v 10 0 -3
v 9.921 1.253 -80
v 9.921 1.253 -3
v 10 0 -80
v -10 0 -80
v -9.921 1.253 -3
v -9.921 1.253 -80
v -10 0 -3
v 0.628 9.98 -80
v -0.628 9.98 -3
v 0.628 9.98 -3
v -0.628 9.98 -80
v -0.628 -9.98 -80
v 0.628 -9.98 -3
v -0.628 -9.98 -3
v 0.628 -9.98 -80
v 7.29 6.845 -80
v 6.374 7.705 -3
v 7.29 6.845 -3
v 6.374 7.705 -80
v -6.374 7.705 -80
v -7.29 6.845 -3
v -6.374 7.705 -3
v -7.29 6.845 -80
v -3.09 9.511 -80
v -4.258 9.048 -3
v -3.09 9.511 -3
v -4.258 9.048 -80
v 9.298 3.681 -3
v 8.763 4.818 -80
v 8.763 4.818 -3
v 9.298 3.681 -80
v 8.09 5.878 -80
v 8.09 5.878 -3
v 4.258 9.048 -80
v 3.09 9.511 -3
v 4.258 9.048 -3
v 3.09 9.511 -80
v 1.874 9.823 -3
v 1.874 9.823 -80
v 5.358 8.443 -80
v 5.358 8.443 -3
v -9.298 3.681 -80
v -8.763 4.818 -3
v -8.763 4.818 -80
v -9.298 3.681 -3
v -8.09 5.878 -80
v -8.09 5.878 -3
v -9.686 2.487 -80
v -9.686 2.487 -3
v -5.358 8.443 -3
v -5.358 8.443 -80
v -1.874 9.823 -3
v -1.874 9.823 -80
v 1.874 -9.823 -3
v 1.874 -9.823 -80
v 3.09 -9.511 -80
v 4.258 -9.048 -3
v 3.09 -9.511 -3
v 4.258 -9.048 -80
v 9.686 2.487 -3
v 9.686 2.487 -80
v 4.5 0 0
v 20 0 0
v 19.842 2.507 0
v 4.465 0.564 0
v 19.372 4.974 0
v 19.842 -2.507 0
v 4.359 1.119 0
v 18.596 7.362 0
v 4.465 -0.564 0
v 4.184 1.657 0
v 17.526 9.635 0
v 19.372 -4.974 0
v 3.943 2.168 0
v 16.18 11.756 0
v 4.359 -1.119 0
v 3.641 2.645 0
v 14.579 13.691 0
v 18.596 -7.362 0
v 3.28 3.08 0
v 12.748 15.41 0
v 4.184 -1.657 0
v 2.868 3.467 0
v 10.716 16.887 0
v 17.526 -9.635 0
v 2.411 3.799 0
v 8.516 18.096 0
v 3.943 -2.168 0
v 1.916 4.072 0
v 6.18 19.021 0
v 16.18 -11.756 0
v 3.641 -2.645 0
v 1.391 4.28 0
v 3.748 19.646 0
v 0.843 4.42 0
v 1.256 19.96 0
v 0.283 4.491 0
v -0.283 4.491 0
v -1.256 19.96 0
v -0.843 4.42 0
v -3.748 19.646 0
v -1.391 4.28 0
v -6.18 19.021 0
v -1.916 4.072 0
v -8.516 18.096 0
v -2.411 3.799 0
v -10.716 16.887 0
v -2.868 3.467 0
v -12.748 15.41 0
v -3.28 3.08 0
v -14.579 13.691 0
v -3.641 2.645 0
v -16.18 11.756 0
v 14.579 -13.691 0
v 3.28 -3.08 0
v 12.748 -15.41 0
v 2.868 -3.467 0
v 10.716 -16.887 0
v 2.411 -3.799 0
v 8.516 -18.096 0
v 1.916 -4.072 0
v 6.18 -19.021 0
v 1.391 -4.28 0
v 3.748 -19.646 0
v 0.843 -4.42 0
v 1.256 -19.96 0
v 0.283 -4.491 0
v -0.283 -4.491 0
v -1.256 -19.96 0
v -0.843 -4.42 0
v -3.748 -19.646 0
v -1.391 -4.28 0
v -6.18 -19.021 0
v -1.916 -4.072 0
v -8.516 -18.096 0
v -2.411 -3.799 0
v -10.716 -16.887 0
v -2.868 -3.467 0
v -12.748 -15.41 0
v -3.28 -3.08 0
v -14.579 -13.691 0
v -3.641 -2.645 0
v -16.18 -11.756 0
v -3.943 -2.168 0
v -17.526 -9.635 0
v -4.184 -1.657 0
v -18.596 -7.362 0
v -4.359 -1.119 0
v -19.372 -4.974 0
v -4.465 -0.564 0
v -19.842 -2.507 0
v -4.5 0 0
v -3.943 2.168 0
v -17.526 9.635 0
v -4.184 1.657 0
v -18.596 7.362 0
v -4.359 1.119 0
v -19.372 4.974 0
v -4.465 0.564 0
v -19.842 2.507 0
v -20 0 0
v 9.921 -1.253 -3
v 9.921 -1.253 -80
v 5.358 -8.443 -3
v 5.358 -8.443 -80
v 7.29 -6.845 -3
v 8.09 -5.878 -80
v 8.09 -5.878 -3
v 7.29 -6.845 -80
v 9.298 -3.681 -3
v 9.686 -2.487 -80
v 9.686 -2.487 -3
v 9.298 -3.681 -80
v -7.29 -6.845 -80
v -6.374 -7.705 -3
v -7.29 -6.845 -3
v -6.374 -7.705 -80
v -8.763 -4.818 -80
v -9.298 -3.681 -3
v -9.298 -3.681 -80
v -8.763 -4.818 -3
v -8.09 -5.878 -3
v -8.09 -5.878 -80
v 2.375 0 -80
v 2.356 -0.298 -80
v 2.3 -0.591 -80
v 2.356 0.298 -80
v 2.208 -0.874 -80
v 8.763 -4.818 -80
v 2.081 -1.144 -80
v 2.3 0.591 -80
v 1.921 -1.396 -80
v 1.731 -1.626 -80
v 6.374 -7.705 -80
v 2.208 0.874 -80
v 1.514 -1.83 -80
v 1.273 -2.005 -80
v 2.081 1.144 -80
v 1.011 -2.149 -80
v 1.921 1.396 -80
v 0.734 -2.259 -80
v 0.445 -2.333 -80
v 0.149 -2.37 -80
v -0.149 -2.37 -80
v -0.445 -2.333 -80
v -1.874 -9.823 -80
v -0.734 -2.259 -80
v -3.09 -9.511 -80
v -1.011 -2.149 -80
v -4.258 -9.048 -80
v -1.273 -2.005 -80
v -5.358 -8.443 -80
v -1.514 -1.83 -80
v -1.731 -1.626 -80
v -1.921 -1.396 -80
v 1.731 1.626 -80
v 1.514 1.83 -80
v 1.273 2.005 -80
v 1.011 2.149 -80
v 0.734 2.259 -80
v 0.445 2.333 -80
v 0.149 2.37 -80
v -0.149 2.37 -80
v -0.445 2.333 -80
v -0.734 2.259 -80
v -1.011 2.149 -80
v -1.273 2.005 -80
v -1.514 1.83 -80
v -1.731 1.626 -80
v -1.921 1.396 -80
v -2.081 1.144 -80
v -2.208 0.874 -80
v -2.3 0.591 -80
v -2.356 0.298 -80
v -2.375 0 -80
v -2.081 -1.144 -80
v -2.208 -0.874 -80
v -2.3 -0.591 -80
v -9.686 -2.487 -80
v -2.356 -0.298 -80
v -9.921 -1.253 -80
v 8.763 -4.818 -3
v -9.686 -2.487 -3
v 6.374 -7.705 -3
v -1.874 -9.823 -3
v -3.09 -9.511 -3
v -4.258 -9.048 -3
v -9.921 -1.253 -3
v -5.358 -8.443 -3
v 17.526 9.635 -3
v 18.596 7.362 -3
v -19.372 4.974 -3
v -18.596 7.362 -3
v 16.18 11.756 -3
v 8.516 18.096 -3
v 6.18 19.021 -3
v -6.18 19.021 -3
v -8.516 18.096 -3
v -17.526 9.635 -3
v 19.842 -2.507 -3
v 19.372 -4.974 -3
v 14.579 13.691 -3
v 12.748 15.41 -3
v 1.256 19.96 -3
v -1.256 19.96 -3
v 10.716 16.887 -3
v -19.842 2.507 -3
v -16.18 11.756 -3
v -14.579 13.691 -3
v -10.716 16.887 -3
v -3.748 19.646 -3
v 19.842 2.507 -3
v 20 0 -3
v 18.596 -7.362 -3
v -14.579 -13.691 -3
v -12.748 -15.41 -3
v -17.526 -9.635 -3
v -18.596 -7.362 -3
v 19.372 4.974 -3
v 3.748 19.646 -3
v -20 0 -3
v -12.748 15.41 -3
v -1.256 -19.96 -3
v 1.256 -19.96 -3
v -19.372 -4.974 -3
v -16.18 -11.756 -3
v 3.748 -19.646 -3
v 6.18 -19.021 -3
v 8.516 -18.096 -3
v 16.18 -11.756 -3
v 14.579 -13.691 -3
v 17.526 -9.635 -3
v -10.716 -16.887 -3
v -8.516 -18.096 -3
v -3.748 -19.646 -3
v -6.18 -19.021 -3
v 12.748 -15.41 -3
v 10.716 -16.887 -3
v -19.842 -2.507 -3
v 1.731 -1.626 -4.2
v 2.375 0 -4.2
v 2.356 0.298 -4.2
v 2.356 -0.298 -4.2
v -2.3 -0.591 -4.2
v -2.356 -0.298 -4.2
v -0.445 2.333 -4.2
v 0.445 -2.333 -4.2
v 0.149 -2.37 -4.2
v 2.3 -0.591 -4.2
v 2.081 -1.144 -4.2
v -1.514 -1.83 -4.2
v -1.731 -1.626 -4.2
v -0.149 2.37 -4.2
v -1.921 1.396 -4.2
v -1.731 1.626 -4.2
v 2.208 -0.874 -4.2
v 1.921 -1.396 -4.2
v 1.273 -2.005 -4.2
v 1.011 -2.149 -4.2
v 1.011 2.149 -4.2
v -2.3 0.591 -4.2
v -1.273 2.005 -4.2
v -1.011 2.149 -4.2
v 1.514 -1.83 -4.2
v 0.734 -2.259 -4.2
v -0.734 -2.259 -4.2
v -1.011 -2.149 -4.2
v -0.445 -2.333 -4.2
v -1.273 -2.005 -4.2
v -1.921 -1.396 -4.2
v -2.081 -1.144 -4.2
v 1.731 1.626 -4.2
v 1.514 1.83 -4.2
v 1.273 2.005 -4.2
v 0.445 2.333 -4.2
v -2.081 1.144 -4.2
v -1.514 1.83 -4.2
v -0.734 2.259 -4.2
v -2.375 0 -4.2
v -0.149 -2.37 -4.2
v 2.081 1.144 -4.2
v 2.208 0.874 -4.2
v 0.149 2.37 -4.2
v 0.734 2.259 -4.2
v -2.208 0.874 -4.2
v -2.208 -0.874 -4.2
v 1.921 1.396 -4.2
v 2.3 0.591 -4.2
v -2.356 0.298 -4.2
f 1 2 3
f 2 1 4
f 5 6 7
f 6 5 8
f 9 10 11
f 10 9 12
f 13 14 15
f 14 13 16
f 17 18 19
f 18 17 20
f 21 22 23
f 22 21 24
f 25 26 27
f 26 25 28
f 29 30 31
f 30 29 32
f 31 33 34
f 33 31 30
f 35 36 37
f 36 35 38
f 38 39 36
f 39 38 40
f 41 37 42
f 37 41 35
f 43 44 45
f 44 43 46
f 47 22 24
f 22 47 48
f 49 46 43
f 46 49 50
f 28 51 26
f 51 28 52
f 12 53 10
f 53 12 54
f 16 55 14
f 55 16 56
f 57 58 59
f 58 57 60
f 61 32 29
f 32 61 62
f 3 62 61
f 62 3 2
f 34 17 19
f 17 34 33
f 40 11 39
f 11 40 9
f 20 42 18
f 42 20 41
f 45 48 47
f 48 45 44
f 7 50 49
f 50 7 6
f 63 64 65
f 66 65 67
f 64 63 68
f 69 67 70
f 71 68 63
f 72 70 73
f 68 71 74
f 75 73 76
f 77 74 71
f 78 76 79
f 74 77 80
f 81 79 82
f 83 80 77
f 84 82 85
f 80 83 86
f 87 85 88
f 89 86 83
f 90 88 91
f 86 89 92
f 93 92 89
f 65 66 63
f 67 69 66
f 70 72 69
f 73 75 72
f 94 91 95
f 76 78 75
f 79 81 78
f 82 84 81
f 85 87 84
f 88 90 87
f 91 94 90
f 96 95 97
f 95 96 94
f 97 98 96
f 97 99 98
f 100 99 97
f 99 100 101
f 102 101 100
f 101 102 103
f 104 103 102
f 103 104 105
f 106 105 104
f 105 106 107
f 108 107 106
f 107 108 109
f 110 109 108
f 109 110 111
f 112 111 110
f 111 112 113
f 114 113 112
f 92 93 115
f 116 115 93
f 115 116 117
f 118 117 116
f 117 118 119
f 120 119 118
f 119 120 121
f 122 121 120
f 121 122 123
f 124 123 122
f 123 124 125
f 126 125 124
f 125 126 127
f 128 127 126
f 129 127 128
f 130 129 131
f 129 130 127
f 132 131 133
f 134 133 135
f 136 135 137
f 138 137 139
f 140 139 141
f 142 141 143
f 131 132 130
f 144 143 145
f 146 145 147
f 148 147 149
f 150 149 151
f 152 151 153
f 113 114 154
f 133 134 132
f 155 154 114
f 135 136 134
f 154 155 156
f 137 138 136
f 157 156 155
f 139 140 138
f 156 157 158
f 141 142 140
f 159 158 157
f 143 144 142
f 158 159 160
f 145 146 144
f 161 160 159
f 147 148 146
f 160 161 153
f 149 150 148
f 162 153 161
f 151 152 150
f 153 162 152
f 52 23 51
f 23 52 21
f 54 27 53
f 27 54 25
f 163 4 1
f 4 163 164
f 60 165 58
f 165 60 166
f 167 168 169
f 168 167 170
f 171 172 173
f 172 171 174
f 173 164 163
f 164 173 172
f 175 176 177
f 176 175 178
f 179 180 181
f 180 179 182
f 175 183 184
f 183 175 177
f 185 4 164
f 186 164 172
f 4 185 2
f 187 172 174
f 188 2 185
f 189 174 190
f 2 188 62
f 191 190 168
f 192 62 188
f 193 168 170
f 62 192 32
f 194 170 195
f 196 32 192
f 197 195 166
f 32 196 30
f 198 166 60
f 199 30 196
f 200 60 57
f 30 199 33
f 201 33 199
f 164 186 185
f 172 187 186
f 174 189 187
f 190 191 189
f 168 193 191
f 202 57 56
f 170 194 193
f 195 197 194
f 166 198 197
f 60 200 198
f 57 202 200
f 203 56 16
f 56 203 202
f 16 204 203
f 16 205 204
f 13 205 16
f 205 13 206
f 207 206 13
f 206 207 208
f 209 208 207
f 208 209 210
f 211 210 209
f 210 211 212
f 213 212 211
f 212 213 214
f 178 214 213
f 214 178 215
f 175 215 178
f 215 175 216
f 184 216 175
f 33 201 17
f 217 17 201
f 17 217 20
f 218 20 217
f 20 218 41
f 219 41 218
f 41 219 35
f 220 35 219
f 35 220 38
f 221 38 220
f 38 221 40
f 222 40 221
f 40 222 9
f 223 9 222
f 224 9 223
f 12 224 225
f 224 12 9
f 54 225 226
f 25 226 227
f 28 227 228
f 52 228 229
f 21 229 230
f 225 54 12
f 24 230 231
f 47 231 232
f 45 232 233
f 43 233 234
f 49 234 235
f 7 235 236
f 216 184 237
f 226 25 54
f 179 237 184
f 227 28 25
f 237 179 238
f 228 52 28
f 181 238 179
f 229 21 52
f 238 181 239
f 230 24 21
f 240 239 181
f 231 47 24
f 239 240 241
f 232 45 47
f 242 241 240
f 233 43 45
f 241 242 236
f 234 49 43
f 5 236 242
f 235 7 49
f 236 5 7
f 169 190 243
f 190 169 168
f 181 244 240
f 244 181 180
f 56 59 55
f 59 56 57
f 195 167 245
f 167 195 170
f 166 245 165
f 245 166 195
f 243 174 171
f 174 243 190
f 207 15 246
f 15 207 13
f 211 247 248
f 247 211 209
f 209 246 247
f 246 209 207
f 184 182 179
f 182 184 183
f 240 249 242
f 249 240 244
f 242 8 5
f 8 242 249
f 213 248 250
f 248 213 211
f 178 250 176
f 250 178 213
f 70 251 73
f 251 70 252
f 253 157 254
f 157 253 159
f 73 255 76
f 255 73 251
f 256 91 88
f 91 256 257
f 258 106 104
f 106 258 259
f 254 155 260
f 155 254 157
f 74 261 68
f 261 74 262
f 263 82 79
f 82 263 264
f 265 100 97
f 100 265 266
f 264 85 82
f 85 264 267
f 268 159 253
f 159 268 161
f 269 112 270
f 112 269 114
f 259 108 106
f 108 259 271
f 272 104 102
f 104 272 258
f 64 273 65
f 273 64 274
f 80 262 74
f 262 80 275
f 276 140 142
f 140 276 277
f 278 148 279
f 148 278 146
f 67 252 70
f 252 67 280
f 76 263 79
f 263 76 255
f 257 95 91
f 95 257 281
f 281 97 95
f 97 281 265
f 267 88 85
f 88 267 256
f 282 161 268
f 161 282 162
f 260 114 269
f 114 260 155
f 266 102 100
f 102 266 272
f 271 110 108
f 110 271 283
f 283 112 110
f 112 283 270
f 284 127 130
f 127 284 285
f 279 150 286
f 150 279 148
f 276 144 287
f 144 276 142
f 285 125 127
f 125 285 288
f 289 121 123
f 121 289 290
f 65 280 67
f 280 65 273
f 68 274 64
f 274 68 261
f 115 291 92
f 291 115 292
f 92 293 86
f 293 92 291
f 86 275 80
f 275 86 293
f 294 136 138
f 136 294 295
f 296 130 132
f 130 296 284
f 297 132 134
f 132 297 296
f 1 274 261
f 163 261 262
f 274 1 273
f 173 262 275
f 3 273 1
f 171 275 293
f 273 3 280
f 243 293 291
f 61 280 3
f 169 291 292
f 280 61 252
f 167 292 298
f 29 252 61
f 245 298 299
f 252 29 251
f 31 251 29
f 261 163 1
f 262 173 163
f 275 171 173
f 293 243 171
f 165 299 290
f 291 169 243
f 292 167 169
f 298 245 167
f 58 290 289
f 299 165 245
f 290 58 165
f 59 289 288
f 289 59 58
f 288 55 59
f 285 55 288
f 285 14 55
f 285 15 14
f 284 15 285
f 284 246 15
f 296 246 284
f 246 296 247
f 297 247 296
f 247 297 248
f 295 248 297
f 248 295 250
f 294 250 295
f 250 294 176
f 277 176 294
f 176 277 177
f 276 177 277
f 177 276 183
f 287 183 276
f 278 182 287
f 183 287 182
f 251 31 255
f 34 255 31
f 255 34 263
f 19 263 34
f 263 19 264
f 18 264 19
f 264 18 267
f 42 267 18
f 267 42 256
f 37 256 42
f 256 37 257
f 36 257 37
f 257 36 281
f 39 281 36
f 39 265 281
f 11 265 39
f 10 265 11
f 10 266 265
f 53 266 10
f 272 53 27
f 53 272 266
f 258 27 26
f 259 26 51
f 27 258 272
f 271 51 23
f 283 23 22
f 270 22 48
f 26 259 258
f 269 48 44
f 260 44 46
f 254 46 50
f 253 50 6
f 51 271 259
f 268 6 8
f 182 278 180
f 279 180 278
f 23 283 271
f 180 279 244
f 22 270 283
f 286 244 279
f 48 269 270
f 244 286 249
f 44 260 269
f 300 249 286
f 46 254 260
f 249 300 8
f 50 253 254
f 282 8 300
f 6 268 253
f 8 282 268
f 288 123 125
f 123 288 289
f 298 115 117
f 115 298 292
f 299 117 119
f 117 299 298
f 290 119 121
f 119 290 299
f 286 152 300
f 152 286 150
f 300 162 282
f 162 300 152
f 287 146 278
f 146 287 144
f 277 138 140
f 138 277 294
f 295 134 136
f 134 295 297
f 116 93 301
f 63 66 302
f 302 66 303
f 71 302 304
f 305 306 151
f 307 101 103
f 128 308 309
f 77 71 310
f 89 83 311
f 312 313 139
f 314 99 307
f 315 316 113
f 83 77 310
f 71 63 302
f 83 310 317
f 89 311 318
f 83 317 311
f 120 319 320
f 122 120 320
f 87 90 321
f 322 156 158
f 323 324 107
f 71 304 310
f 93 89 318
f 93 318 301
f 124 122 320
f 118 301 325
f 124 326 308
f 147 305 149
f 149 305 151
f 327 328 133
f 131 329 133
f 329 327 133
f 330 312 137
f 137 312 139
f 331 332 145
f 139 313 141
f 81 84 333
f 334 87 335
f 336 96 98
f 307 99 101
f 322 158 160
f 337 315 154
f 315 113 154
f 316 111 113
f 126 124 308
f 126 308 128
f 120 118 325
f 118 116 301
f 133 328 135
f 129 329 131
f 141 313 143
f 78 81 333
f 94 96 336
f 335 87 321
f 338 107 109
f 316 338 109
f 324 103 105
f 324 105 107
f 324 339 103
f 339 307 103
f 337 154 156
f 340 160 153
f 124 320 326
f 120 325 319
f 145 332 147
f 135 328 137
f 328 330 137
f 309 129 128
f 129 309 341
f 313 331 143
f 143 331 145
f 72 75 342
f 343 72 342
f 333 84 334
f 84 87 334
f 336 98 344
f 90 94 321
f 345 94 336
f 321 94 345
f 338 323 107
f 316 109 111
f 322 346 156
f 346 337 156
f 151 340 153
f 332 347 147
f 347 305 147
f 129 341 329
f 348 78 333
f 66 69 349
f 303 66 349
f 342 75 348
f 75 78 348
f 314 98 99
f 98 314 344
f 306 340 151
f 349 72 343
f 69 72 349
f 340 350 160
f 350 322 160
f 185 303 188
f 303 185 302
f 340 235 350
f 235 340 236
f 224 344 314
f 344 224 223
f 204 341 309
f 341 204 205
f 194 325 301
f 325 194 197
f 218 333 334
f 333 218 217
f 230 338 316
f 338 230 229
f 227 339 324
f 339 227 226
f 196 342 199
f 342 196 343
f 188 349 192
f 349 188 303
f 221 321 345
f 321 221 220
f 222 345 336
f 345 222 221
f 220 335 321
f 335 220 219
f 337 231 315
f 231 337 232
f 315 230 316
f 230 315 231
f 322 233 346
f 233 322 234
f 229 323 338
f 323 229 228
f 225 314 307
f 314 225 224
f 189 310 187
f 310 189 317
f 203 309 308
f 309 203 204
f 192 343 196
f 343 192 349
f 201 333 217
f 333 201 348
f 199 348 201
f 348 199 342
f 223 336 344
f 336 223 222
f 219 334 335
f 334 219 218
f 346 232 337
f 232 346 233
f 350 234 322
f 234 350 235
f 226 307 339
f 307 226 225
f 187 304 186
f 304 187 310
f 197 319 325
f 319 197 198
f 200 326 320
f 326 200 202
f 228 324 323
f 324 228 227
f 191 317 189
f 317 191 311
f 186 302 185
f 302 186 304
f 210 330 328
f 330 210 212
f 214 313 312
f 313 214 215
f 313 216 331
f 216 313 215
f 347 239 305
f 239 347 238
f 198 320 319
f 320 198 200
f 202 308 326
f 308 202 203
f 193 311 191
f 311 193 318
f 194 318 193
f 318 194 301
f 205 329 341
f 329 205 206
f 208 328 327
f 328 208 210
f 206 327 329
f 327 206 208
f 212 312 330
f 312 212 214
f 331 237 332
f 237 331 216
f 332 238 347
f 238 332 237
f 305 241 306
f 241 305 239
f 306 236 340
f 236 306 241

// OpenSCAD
$fn = 50;


difference() {
	union() {
		translate(v = [0, 0, -80.0000000000]) {
			cylinder(h = 80, r = 10.0000000000);
		}
		translate(v = [0, 0, -3.0000000000]) {
			cylinder(h = 3, r = 20.0000000000);
		}
	}
	union() {
		translate(v = [0, 0, 0]) {
			rotate(a = [0, 0, 0]) {
				difference() {
					union() {
						#translate(v = [0, 0, -80.0000000000]) {
							cylinder(h = 80, r = 2.2500000000);
						}
						#translate(v = [0, 0, -4.2000000000]) {
							cylinder(h = 4.2000000000, r1 = 2.3750000000, r2 = 4.5000000000);
						}
						#translate(v = [0, 0, -80.0000000000]) {
							cylinder(h = 80, r = 2.3750000000);
						}
						#translate(v = [0, 0, -80.0000000000]) {
							cylinder(h = 80, r = 2.2500000000);
						}
					}
					union();
				}
			}
		}
	}
}
